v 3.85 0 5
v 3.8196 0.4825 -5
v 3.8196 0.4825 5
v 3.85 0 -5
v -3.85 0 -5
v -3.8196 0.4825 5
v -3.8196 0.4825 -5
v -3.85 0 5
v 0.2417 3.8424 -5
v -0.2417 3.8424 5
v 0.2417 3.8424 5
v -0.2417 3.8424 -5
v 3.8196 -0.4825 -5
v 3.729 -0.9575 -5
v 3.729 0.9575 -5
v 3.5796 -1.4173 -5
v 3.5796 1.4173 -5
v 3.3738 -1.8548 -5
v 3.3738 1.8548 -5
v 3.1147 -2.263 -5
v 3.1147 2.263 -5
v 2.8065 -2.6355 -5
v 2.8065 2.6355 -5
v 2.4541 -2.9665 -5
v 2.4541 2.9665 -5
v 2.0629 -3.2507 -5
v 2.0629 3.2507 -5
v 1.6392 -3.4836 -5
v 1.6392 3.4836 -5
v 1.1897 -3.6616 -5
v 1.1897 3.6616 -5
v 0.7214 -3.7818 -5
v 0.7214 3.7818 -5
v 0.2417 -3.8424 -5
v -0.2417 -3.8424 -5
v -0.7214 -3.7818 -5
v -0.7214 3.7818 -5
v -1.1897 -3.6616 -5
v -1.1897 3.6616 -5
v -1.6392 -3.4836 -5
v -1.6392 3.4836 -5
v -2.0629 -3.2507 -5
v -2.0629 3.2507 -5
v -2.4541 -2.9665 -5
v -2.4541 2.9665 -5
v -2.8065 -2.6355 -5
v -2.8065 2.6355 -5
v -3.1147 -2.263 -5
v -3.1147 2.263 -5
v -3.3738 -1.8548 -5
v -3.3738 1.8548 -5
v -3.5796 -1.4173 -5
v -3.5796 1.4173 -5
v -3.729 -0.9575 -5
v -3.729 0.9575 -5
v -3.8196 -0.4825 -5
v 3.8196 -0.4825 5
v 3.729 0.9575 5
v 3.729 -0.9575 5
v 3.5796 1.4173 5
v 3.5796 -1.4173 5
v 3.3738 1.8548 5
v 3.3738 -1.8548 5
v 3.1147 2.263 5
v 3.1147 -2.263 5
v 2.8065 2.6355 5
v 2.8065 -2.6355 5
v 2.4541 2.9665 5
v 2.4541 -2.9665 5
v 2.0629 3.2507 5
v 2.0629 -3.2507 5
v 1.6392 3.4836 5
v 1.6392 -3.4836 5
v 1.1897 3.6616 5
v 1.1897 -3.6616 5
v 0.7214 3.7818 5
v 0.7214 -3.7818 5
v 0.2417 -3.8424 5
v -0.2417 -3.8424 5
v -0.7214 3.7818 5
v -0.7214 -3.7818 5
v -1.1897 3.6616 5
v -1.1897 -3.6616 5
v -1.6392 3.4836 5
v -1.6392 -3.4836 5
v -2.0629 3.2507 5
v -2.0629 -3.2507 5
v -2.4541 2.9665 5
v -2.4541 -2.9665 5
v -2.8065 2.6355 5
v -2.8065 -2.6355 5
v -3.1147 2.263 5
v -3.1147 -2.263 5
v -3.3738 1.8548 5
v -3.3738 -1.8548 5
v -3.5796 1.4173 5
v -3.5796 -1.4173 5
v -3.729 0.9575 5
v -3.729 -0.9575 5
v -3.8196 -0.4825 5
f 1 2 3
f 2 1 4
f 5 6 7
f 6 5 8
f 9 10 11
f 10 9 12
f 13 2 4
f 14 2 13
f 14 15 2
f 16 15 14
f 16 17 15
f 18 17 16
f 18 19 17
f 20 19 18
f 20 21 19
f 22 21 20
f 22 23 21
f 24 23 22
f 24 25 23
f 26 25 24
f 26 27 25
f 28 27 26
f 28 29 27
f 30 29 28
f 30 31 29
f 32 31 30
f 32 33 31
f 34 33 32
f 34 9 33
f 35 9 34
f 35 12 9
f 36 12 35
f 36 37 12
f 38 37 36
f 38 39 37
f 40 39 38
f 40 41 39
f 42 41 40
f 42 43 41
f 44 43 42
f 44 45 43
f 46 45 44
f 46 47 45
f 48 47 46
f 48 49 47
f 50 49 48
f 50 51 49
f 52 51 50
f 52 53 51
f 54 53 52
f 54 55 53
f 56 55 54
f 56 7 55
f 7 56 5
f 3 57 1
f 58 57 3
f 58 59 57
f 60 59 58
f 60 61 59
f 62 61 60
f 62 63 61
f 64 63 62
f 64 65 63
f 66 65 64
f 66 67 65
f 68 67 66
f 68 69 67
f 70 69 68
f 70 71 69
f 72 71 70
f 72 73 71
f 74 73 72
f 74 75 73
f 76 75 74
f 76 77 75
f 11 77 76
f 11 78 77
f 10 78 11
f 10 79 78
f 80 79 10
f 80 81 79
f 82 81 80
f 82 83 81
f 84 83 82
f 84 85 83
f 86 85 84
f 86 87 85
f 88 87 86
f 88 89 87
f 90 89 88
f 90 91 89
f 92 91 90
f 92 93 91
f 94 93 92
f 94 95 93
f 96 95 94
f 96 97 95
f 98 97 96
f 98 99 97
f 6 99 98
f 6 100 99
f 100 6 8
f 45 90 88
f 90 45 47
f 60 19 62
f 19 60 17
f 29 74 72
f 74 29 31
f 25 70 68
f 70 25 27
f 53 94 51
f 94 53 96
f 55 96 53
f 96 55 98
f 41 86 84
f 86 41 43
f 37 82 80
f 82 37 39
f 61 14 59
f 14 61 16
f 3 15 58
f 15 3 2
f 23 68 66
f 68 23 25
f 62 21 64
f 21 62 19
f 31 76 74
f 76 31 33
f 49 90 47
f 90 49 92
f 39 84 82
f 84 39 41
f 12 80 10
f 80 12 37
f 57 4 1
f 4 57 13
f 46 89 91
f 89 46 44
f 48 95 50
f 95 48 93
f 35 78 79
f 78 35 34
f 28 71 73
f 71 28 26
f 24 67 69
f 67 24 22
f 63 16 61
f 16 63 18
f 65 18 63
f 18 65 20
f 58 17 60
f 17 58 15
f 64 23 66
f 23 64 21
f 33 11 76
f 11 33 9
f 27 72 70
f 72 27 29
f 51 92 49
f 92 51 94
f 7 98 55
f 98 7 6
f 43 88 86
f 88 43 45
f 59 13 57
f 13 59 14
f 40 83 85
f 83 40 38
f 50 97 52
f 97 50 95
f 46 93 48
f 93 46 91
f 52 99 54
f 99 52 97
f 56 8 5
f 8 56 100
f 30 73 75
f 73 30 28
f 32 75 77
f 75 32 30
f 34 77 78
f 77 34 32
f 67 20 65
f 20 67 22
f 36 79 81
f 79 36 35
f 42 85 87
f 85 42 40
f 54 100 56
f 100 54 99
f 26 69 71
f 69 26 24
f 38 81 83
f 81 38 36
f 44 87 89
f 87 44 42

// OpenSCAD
$fn = 50;


difference() {
	union() {
		translate(v = [0, 0, -5.0000000000]) {
			cylinder(h = 10, r = 3.8500000000);
		}
	}
	union() {
		translate(v = [0, 0, -100.0000000000]) {
			cylinder(h = 200, r = 0);
		}
	}
}
